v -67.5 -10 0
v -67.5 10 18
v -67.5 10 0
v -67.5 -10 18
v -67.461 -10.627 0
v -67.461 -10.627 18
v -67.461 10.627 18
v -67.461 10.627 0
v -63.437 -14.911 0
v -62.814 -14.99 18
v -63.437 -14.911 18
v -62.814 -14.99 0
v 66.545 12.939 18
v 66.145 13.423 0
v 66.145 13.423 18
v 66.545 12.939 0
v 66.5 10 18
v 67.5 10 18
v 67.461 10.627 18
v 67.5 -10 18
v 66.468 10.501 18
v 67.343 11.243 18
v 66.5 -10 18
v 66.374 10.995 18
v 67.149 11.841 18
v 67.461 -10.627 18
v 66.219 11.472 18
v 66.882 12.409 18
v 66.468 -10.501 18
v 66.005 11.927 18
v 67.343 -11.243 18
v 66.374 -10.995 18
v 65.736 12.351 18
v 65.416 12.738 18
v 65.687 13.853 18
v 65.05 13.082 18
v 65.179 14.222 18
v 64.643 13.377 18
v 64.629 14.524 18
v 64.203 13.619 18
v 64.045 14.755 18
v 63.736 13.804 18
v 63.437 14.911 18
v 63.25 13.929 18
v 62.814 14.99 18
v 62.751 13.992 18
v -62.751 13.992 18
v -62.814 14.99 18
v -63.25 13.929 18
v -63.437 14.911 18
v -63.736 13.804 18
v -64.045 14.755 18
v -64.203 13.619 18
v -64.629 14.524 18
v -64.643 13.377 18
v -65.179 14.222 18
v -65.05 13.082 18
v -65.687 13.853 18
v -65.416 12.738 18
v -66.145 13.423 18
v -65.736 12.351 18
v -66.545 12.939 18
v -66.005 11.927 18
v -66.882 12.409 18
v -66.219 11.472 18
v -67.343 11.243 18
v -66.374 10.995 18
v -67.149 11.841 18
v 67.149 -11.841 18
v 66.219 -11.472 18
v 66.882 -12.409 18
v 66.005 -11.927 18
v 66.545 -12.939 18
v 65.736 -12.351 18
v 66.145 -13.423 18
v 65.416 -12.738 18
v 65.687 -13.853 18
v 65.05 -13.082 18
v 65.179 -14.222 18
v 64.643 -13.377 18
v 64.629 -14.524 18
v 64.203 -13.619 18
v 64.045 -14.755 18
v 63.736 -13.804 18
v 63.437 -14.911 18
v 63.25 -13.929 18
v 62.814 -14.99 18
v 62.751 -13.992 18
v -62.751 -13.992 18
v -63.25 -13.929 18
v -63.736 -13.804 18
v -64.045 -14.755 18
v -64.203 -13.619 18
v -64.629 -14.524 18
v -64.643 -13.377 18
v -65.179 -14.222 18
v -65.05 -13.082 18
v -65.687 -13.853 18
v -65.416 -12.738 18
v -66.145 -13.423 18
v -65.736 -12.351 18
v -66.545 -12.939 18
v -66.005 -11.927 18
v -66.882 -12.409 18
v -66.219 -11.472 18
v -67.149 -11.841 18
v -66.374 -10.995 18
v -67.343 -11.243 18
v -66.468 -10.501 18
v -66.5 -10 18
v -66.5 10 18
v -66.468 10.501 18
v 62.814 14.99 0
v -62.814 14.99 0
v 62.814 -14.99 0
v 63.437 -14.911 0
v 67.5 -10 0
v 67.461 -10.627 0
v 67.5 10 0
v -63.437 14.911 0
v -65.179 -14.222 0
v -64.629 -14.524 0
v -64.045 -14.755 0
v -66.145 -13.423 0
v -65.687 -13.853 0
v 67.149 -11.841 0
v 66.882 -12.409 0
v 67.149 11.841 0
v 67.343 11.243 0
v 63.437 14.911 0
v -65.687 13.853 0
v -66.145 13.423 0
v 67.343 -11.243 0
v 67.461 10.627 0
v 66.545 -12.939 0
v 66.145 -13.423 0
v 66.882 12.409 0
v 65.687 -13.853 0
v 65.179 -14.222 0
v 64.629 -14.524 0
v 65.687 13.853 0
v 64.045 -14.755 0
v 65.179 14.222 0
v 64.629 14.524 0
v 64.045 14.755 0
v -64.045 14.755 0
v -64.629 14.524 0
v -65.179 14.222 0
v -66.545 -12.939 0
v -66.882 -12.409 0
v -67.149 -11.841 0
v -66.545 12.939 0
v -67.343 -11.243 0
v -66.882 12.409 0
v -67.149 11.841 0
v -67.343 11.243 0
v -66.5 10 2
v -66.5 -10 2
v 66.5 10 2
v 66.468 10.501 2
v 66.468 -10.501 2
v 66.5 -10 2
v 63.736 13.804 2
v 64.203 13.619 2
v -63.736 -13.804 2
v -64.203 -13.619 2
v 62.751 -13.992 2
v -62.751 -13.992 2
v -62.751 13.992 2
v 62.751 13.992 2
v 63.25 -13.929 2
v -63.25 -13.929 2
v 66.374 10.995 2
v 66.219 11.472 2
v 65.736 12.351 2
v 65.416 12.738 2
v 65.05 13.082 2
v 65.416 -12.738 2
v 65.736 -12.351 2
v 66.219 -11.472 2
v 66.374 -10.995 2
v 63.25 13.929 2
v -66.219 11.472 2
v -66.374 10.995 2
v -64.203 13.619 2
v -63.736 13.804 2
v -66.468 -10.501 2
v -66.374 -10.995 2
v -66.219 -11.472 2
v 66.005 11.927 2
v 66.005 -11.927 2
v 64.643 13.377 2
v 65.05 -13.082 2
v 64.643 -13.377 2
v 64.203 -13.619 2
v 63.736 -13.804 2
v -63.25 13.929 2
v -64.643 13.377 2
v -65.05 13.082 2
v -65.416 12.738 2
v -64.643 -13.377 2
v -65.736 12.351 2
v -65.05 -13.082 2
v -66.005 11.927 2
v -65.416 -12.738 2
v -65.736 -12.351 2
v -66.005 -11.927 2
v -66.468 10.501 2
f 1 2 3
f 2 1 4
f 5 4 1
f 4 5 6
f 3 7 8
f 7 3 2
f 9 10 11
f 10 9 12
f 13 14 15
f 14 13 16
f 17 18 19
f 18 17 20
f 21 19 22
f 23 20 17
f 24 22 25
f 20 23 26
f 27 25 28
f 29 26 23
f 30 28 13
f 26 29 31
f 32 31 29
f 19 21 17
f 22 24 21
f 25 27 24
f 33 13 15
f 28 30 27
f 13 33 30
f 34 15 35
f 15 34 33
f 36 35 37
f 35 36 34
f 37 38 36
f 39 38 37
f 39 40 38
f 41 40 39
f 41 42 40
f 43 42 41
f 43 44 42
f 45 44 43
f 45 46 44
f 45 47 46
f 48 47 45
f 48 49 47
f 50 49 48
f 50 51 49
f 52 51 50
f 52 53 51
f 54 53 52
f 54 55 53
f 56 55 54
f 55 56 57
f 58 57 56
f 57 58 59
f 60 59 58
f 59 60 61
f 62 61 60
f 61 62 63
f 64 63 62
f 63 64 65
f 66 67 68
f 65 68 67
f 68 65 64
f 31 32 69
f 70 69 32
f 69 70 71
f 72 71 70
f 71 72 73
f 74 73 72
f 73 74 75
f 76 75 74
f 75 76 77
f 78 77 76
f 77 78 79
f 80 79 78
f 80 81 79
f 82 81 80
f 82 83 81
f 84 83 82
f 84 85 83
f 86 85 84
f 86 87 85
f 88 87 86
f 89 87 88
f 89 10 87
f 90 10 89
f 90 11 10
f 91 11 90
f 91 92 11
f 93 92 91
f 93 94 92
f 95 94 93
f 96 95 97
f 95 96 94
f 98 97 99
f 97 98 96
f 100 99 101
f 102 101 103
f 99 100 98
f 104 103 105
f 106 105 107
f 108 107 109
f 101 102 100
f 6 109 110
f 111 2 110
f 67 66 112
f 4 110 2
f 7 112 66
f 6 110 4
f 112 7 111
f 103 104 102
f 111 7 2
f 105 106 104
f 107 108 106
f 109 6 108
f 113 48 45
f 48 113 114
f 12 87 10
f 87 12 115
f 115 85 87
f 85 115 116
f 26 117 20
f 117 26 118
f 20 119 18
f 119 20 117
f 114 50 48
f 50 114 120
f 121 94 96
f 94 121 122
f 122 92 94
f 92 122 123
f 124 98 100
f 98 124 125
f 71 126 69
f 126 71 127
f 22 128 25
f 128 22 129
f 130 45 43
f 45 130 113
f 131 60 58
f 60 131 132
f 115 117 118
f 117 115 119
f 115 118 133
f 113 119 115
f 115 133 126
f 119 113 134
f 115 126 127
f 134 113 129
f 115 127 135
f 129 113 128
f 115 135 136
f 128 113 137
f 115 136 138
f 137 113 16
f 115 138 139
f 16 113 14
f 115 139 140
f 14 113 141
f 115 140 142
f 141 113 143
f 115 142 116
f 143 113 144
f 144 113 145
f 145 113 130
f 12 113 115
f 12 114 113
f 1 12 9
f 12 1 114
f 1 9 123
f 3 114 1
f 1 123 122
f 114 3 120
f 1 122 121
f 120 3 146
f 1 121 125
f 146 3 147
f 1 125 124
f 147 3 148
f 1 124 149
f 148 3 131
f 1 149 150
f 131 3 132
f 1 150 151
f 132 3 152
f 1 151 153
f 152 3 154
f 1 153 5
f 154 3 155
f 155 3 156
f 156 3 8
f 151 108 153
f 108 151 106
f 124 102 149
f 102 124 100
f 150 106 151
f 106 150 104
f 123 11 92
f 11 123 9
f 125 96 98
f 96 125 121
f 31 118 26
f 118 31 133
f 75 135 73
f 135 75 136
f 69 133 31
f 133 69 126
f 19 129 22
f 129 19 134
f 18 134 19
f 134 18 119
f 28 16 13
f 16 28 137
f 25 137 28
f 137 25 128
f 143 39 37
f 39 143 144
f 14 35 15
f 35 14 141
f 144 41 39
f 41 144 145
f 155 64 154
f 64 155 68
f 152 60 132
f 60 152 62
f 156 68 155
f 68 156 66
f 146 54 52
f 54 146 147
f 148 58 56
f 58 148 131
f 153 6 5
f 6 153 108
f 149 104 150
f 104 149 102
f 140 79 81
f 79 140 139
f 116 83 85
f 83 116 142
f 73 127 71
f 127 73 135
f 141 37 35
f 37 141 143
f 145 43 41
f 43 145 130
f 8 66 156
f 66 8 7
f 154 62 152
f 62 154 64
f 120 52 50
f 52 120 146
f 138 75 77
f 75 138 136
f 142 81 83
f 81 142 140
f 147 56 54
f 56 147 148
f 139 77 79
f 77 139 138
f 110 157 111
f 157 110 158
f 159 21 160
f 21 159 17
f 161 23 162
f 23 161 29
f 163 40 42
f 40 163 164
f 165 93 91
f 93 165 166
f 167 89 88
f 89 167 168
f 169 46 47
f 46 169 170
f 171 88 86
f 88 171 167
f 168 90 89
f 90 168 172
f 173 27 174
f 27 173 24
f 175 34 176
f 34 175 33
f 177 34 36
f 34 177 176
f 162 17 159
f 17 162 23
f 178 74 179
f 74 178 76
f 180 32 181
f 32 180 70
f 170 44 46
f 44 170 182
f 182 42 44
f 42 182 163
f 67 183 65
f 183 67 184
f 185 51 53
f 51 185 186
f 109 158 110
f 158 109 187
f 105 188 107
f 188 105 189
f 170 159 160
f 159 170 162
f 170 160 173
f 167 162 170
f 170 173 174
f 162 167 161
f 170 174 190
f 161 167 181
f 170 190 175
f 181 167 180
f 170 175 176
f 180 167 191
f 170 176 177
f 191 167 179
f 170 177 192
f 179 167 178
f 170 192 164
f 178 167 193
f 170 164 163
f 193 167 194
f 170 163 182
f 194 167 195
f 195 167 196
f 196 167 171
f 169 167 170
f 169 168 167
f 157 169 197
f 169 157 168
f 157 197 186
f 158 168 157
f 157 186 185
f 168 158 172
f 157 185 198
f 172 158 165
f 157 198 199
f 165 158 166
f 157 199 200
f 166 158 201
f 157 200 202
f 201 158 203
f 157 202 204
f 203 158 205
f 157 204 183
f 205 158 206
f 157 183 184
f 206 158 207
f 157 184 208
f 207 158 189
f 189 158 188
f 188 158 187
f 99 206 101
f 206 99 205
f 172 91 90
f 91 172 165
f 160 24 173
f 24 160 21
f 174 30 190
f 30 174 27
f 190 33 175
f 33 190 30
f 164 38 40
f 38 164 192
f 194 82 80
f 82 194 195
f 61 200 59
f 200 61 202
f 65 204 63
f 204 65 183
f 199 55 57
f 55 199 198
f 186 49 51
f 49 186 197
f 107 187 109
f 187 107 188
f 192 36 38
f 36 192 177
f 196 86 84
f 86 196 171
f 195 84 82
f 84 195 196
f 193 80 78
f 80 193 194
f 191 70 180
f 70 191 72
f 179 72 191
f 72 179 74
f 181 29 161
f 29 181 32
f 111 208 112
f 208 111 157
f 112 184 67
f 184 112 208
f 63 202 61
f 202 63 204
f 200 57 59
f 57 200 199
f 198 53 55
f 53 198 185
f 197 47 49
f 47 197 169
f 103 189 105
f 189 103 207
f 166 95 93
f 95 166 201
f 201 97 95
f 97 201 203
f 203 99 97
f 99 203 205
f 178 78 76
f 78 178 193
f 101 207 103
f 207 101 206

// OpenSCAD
$fn = 50;


difference() {
	union() {
		hull() {
			translate(v = [-62.5000000000, 10.0000000000, 0]) {
				cylinder(h = 18, r = 5);
			}
			translate(v = [62.5000000000, 10.0000000000, 0]) {
				cylinder(h = 18, r = 5);
			}
			translate(v = [-62.5000000000, -10.0000000000, 0]) {
				cylinder(h = 18, r = 5);
			}
			translate(v = [62.5000000000, -10.0000000000, 0]) {
				cylinder(h = 18, r = 5);
			}
		}
	}
	union() {
		translate(v = [0, 0, 2]) {
			hull() {
				translate(v = [-62.5000000000, 10.0000000000, 0]) {
					cylinder(h = 16, r = 4);
				}
				translate(v = [62.5000000000, 10.0000000000, 0]) {
					cylinder(h = 16, r = 4);
				}
				translate(v = [-62.5000000000, -10.0000000000, 0]) {
					cylinder(h = 16, r = 4);
				}
				translate(v = [62.5000000000, -10.0000000000, 0]) {
					cylinder(h = 16, r = 4);
				}
			}
		}
	}
}
